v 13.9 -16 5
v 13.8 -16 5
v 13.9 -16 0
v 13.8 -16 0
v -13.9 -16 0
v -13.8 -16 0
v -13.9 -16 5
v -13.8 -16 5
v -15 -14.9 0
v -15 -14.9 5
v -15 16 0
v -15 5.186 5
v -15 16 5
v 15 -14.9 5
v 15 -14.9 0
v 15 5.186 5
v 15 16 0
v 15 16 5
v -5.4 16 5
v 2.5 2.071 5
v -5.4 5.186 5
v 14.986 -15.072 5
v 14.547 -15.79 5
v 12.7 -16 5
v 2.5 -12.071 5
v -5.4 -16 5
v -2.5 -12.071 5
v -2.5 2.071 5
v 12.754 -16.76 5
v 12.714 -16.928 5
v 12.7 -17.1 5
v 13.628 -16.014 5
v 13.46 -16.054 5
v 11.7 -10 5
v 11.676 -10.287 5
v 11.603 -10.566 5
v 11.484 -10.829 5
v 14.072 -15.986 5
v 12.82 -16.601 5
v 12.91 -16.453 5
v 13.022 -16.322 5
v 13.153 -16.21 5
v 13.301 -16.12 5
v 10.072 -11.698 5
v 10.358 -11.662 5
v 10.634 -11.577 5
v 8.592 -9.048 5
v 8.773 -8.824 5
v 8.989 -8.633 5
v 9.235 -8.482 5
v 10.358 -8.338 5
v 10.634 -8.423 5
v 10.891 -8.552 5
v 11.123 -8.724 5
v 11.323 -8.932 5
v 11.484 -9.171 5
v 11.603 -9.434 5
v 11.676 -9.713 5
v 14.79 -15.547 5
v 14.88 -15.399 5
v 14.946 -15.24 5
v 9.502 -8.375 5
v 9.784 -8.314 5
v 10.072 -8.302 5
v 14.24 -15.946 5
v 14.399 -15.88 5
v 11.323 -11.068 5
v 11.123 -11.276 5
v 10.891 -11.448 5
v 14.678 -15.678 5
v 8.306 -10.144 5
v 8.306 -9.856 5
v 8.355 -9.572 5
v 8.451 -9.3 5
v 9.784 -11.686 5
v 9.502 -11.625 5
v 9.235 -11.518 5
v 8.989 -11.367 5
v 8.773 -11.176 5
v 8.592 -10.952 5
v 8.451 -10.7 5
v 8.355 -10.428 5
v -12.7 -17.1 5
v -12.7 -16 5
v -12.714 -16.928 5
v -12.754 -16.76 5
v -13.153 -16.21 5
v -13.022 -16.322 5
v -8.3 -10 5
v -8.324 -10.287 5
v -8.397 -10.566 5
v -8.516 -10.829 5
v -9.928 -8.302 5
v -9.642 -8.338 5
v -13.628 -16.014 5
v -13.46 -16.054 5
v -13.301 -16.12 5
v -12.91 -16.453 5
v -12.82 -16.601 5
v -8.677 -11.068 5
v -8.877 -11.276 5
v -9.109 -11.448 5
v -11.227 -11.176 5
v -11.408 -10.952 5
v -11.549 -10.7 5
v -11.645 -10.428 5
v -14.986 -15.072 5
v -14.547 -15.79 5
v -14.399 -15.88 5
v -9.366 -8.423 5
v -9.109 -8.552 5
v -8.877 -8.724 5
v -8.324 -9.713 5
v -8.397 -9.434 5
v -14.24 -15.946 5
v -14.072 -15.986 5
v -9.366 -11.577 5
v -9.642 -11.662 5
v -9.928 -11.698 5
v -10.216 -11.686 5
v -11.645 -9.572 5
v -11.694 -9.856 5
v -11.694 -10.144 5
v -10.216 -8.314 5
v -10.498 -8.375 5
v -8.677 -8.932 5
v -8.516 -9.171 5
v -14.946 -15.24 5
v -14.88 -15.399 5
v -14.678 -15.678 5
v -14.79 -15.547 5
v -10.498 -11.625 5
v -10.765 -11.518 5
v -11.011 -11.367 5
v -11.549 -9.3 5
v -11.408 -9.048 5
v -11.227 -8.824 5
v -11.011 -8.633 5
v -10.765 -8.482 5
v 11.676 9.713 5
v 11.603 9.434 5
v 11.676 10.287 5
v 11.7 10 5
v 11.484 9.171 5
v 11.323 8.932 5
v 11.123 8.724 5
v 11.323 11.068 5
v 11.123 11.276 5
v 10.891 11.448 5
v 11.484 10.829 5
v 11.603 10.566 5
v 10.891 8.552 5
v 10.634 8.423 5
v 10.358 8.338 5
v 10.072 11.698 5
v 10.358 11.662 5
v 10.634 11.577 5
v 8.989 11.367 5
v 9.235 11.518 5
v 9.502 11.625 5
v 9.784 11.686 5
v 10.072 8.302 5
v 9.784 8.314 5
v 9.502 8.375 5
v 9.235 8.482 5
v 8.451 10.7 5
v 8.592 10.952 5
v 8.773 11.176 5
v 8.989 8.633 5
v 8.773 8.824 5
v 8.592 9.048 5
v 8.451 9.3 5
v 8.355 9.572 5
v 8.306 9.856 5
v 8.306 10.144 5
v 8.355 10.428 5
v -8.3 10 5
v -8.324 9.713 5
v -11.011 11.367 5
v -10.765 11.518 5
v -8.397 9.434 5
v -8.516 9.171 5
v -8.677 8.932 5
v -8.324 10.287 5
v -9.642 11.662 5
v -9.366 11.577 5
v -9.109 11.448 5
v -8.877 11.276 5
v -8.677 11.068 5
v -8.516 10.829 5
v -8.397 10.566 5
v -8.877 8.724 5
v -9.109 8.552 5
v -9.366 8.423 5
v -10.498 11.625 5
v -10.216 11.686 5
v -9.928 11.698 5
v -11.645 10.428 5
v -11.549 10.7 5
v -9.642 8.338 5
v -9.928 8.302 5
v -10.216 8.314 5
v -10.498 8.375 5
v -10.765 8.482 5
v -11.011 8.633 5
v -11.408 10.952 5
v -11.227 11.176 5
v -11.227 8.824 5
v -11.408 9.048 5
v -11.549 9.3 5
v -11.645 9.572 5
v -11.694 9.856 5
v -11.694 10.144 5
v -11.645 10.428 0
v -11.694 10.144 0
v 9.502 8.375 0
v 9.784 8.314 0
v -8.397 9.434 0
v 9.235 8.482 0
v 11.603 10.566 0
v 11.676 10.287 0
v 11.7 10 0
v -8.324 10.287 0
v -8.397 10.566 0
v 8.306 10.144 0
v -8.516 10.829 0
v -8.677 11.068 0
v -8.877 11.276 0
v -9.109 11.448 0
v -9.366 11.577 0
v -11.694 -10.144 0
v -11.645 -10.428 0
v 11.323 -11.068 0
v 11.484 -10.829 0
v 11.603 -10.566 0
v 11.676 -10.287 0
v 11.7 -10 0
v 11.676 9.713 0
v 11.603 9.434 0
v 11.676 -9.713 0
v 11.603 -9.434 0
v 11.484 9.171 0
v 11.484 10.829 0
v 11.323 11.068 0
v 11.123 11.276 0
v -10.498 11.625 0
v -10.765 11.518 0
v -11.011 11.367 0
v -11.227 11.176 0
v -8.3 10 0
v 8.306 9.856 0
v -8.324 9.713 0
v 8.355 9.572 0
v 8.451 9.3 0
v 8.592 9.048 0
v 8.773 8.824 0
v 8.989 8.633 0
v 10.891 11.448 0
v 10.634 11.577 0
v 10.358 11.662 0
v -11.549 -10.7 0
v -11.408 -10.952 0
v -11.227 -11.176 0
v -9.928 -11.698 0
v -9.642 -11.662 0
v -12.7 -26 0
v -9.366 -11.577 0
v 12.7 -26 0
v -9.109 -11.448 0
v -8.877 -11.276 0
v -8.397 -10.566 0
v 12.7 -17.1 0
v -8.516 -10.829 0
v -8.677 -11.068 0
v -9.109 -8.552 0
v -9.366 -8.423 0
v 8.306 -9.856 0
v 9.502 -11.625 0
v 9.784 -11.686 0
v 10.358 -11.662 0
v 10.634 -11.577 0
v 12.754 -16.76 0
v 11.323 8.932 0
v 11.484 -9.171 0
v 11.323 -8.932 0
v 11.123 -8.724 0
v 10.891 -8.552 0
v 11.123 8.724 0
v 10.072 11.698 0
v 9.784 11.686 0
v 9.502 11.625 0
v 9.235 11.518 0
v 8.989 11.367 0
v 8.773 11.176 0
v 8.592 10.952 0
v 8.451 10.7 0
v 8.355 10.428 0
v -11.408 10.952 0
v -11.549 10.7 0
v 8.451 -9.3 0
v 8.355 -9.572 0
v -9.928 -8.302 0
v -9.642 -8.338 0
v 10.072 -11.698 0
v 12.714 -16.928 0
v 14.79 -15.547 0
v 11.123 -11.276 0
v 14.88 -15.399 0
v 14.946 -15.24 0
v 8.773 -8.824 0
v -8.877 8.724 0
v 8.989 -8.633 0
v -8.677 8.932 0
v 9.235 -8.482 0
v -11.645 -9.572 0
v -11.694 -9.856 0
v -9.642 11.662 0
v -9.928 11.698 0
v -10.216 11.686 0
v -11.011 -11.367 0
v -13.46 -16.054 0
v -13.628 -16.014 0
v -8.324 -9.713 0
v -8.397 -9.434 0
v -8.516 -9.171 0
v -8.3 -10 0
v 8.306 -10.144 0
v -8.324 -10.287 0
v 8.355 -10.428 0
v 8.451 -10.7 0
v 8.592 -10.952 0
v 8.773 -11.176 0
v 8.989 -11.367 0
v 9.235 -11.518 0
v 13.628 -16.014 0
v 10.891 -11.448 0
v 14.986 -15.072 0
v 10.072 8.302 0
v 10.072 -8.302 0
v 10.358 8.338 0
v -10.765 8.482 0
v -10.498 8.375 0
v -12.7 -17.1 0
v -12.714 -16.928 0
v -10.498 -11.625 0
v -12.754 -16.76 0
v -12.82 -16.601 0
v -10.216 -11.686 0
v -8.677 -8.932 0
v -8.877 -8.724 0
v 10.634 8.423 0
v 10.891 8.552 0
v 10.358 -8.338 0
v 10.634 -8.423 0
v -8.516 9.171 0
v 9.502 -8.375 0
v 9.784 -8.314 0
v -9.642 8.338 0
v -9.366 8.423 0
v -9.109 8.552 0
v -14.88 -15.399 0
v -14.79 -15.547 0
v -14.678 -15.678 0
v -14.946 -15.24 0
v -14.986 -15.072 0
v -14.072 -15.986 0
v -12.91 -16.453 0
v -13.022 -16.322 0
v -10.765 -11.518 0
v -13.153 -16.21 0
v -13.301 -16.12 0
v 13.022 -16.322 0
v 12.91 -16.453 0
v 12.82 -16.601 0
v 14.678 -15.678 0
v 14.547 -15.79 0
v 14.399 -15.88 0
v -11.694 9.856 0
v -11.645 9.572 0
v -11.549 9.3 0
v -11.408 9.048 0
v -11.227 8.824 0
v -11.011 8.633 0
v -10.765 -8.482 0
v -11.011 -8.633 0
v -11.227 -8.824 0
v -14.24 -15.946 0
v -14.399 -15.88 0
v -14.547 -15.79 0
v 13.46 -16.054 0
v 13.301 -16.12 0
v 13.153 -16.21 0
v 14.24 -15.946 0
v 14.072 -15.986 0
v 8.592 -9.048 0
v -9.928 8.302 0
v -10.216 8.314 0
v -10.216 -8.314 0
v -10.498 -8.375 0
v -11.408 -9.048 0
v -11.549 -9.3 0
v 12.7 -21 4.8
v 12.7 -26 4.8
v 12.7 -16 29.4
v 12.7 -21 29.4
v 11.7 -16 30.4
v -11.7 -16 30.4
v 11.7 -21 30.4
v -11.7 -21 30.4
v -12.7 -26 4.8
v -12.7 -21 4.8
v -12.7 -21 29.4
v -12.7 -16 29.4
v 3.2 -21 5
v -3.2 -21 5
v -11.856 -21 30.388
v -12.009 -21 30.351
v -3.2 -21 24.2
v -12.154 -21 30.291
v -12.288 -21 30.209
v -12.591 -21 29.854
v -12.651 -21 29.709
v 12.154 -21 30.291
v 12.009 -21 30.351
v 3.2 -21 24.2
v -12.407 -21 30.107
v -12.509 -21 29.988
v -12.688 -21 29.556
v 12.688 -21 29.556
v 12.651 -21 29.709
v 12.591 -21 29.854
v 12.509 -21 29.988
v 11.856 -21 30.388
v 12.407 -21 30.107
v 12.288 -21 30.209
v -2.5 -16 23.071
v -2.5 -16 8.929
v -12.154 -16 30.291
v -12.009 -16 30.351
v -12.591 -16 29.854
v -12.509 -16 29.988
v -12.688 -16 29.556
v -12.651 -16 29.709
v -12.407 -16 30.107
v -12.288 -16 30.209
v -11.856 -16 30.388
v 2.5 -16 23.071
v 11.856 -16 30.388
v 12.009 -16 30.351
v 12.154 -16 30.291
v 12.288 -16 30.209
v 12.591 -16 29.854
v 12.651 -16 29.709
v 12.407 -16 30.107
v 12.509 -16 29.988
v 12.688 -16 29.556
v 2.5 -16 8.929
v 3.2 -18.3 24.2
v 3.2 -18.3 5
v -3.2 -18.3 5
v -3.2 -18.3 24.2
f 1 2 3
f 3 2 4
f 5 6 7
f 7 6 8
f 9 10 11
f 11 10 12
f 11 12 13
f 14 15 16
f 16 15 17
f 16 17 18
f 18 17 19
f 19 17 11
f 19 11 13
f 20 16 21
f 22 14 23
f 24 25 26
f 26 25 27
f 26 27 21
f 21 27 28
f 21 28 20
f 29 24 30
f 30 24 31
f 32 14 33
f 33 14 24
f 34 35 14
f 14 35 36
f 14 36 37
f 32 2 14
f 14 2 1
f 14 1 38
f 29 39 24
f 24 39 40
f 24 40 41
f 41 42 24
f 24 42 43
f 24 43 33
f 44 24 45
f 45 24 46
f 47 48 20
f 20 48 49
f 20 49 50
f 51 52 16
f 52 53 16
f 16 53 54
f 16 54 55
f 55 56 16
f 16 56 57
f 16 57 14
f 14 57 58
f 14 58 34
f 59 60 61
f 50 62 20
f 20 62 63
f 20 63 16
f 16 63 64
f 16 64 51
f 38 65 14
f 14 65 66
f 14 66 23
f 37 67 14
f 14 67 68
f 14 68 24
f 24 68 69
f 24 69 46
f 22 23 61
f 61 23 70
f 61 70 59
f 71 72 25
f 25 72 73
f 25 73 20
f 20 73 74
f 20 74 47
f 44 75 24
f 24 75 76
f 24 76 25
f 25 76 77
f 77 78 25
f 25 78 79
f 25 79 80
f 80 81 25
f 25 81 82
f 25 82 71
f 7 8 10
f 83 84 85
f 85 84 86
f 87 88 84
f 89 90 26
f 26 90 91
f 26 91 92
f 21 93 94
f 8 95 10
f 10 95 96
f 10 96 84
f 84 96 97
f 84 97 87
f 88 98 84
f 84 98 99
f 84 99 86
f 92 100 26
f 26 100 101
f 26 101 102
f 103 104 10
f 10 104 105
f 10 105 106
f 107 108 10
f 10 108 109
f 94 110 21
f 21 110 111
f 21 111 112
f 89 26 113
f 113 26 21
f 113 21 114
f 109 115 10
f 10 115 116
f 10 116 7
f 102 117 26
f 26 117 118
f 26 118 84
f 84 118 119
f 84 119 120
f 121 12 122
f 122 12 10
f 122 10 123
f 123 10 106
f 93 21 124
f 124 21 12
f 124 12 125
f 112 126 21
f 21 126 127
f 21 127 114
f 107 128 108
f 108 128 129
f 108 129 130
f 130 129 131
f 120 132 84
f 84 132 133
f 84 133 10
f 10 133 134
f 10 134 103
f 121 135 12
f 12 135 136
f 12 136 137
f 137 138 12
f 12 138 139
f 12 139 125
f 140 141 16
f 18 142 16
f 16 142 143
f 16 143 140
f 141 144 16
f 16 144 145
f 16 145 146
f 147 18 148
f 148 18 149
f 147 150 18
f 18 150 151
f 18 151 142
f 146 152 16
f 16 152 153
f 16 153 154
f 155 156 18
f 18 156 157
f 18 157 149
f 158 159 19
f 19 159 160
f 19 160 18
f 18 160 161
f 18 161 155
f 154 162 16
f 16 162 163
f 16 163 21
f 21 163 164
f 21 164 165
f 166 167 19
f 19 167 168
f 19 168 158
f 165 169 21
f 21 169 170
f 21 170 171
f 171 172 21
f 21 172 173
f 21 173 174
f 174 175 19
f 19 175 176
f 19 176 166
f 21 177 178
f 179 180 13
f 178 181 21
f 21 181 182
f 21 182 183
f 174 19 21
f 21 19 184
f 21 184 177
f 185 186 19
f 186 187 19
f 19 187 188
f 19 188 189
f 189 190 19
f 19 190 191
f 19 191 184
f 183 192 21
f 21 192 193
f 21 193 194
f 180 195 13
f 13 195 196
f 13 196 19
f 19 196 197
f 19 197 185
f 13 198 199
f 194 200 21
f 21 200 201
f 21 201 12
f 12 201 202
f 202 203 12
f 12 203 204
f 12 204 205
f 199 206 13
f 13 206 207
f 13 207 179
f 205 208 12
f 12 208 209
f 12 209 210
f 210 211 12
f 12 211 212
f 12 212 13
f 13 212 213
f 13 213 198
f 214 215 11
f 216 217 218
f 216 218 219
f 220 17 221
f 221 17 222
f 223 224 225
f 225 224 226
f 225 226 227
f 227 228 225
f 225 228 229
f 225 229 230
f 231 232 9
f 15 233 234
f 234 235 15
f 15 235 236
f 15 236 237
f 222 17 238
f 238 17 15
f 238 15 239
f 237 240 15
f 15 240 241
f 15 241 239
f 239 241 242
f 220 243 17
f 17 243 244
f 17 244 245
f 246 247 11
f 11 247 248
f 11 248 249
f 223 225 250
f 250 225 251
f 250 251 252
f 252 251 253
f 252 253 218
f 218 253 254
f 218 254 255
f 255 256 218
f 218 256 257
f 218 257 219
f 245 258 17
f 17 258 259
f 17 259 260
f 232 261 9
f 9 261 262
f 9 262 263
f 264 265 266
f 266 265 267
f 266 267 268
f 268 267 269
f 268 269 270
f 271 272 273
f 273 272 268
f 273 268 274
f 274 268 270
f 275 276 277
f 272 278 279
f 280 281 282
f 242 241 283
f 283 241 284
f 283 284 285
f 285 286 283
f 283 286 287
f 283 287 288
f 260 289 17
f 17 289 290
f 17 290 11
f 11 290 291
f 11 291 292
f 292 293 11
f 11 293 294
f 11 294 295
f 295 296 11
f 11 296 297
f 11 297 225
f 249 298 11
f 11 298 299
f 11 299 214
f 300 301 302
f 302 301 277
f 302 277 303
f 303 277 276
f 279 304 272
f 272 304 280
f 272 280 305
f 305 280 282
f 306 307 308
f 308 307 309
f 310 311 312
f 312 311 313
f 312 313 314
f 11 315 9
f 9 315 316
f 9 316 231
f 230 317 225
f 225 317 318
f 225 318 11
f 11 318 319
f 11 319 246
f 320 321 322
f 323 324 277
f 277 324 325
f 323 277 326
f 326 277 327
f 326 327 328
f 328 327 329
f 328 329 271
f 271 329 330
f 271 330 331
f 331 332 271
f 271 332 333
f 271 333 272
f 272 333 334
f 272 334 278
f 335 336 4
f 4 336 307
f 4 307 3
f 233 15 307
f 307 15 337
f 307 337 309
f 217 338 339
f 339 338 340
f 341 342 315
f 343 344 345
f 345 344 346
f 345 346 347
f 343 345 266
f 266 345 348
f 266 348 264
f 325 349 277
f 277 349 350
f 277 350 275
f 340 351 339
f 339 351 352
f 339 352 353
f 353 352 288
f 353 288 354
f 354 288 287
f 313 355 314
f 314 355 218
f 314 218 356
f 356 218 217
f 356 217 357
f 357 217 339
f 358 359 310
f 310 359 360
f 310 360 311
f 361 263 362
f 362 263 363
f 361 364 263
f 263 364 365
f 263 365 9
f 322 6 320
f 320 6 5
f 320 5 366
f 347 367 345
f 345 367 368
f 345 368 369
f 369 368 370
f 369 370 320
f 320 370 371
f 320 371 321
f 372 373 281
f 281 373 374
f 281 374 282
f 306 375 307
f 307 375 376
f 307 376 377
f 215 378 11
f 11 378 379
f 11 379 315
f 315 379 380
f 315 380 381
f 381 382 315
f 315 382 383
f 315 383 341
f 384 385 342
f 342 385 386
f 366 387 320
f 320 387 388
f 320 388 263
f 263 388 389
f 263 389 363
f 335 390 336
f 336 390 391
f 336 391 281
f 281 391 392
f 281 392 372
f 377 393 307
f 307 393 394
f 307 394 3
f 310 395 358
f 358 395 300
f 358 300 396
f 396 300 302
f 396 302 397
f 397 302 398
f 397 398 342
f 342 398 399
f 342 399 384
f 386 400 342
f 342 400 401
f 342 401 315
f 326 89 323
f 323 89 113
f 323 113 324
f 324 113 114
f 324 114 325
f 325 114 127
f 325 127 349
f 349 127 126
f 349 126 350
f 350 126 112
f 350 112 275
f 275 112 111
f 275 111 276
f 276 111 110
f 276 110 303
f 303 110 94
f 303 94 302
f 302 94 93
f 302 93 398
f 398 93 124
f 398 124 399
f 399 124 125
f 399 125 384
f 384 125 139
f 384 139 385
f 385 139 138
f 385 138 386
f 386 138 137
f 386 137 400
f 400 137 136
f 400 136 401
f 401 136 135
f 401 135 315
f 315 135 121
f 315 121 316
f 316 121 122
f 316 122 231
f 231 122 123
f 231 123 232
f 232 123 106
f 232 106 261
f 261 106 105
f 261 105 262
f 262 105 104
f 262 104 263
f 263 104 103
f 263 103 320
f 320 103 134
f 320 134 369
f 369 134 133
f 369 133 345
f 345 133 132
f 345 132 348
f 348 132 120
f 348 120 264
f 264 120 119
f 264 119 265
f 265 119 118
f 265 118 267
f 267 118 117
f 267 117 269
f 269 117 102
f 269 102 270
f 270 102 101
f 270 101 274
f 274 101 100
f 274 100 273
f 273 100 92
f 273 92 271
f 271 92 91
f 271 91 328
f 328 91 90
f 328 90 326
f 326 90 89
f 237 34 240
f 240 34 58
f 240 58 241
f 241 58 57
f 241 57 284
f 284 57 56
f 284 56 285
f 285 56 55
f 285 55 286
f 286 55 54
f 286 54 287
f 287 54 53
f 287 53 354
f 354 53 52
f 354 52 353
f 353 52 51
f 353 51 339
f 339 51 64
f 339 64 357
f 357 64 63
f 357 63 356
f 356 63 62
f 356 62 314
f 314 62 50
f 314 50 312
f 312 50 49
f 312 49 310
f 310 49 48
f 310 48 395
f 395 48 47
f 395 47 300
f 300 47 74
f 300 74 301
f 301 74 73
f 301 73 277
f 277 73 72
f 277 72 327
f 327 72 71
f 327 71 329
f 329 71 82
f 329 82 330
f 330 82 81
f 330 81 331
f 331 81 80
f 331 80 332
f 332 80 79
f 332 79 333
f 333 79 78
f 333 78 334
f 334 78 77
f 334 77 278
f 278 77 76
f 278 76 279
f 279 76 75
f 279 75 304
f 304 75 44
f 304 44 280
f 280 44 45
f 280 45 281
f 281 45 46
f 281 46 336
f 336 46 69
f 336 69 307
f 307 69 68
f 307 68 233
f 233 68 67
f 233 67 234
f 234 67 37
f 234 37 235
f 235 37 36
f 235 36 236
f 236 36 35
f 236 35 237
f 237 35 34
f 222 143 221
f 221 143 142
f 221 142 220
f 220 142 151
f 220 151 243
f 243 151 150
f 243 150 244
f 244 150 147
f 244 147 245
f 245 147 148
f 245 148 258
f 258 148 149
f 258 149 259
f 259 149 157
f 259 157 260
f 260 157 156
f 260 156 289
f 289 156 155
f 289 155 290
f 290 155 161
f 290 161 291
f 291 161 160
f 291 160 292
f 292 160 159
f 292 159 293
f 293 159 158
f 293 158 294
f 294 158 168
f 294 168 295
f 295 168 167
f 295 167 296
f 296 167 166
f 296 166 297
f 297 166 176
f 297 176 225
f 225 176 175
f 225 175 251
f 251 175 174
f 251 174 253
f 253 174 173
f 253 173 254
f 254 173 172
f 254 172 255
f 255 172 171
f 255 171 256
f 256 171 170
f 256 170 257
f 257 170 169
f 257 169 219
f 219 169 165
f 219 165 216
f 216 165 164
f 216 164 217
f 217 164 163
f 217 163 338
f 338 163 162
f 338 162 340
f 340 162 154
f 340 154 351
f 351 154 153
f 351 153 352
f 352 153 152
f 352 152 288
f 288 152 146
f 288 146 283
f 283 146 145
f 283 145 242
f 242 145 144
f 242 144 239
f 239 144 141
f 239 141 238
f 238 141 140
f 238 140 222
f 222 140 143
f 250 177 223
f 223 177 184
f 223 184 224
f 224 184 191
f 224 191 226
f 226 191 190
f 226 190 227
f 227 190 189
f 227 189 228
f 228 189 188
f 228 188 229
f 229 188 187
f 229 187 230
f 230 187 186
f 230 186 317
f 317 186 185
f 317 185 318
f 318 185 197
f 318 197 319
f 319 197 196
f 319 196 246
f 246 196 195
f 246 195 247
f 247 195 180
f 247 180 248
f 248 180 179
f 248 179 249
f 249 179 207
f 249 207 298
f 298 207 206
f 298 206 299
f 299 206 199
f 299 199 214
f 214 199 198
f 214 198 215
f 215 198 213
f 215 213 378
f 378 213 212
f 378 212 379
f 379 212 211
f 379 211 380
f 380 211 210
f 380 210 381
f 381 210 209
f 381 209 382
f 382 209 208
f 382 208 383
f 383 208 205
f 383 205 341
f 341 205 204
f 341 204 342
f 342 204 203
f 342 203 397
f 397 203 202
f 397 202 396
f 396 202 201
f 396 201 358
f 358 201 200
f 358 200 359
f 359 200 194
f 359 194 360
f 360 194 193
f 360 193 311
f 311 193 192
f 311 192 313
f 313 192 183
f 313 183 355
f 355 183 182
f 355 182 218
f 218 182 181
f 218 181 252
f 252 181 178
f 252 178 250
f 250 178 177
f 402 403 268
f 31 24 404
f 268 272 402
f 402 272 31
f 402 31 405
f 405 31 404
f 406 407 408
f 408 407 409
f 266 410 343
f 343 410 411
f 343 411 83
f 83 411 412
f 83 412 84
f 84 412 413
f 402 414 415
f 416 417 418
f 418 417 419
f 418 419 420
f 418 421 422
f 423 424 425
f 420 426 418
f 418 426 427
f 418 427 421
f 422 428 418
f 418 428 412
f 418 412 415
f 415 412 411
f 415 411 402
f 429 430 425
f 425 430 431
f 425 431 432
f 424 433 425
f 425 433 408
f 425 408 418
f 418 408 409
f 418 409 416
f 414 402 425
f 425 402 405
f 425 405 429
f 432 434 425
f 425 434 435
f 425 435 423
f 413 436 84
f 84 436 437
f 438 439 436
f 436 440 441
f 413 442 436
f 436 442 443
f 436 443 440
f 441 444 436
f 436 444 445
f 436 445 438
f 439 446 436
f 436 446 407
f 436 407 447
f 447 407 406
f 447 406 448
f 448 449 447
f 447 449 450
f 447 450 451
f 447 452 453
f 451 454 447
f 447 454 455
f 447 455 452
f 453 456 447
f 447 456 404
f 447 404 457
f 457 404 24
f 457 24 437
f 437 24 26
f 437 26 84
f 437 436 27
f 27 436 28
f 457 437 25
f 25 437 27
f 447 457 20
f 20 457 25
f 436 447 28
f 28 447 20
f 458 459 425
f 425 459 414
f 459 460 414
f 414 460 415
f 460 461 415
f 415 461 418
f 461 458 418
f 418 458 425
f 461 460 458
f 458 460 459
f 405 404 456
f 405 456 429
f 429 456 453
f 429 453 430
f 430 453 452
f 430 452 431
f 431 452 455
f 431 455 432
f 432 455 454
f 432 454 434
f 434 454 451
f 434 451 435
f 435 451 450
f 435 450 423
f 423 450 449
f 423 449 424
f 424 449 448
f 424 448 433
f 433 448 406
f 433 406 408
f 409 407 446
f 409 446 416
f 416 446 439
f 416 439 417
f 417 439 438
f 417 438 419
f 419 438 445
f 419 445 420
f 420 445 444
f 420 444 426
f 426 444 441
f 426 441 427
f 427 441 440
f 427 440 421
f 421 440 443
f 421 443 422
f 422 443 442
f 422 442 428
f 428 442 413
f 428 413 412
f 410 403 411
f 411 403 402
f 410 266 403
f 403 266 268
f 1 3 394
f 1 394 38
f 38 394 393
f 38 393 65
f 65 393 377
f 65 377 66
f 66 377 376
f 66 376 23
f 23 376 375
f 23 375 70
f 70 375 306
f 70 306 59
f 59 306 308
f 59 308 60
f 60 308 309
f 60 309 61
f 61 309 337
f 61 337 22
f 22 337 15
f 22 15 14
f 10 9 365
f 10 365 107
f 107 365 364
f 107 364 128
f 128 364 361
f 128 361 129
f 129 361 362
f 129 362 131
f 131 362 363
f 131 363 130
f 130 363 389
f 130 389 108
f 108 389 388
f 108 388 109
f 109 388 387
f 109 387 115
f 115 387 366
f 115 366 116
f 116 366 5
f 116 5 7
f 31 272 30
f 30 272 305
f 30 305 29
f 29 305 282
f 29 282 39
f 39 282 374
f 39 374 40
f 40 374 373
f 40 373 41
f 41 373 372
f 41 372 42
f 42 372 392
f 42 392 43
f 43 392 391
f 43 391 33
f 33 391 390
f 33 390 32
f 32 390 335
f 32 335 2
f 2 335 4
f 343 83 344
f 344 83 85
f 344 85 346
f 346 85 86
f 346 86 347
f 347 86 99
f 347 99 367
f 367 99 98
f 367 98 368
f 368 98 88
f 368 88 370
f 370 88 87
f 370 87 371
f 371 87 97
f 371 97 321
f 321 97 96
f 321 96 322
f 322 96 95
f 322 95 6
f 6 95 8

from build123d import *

# Parameters (mm, degrees)
SKETCH1_W                       = 30
SKETCH1_H                       = 32
BOSS_EXTRUDE1_DEPTH             = 5
M3_CLEARANCE_HOLE1_D            = 3.4
SKETCH5_W                       = 25.4
SKETCH5_H                       = 30.4
BOSS_EXTRUDE2_DEPTH             = 5
BOSS_EXTRUDE3_REACH             = 38.377
SKETCH8_W                       = 5
SKETCH8_H                       = 10
BOSS_EXTRUDE3_DIRECTION_2_REACH = 38.377
SKETCH10_W                      = 6.4
SKETCH10_H                      = 19.2
CUT_EXTRUDE1_DEPTH              = 2.7
FILLET1_R                       = 1
SKETCH12_W                      = 25.4
SKETCH12_H                      = 4.8
BOSS_EXTRUDE5_DEPTH             = 5
FILLET2_START                   = -1
FILLET2_DEPTH                   = 30.4
FILLET2_2_DEPTH                 = 5


with BuildPart() as part:
    # Sketch1 → Boss-Extrude1 (new body)
    with BuildSketch(Plane.XY):
        Rectangle(SKETCH1_W, SKETCH1_H)
    extrude(amount=BOSS_EXTRUDE1_DEPTH)

    # M3 Clearance Hole1 (through all)
    with Locations(Plane.XY.offset(5)):
        with Locations((-10, 10), (10, 10), (10, -10), (-10, -10)):
            Hole(M3_CLEARANCE_HOLE1_D / 2)

    # Sketch5 → Boss-Extrude2 (add)
    with BuildSketch(Plane.XZ.offset(16)):
        with Locations((0, 15.2)):
            Rectangle(SKETCH5_W, SKETCH5_H)
    extrude(amount=BOSS_EXTRUDE2_DEPTH)

    # Boss-Extrude3: up to this plane
    boss_extrude3_end = Plane(origin=(0, -16, 0), z_dir=(0, -1, 0))
    # Sketch8 → Boss-Extrude3 (add, up to the surface)
    with BuildSketch(Plane(origin=(0, -10.5, 10.5), x_dir=(1, 0, 0), z_dir=(0, -0.7071067811865475, 0.7071067811865477)), mode=Mode.PRIVATE) as boss_extrude3_sk1:
        Rectangle(SKETCH8_W, SKETCH8_H)
    boss_extrude3_tool1 = split(extrude(boss_extrude3_sk1.sketch, amount=BOSS_EXTRUDE3_REACH, mode=Mode.PRIVATE), bisect_by=boss_extrude3_end, keep=Keep.BOTH, mode=Mode.PRIVATE)
    add(boss_extrude3_tool1.solids().sort_by_distance((0, -10.5, 10.5))[0])

    # Boss-Extrude3 direction 2: up to this plane
    boss_extrude3_direction_2_end = Plane(origin=(0, 0, 5), z_dir=(0, 0, 1))
    # Sketch8 → Boss-Extrude3 direction 2 (add, up to the surface)
    with BuildSketch(Plane(origin=(0, -10.5, 10.5), x_dir=(1, 0, 0), z_dir=(0, -0.7071067811865475, 0.7071067811865477)), mode=Mode.PRIVATE) as boss_extrude3_direction_2_sk1:
        Rectangle(SKETCH8_W, SKETCH8_H)
    boss_extrude3_direction_2_tool1 = split(extrude(boss_extrude3_direction_2_sk1.sketch, amount=-BOSS_EXTRUDE3_DIRECTION_2_REACH, mode=Mode.PRIVATE), bisect_by=boss_extrude3_direction_2_end, keep=Keep.BOTH, mode=Mode.PRIVATE)
    add(boss_extrude3_direction_2_tool1.solids().sort_by_distance((0, -10.5, 10.5))[0])

    # Sketch10 → Cut-Extrude1 (cut)
    with BuildSketch(Plane.XZ.offset(21)):
        with Locations((0, 14.6)):
            Rectangle(SKETCH10_W, SKETCH10_H)
    extrude(amount=-CUT_EXTRUDE1_DEPTH, mode=Mode.SUBTRACT)

    # Fillet1
    fillet1_edges = [part.edges().sort_by_distance(p)[0] for p in [
        (12.7, -18.5, 30.4),
        (-12.7, -18.5, 30.4),
    ]]
    fillet(fillet1_edges, radius=FILLET1_R)

    # Sketch12 → Boss-Extrude5 (add)
    with BuildSketch(Plane.XZ.offset(21)):
        with Locations((0, 2.4)):
            Rectangle(SKETCH12_W, SKETCH12_H)
    extrude(amount=BOSS_EXTRUDE5_DEPTH)

    # Fillet2: read off the stored shape, not the designer's step
    # Fillet2 outline → Fillet2 (cut)
    with BuildSketch(Plane.XY.offset(FILLET2_START)):
        with BuildLine():
            Line((15, -16), (15, -14.9))
            ThreePointArc((15, -14.9), (14.677817459, -15.677817459), (13.9, -16))
            Line((13.9, -16), (15, -16))
        make_face()
        with BuildLine():
            Line((-15, -16), (-13.9, -16))
            ThreePointArc((-13.9, -16), (-14.677817459, -15.677817459), (-15, -14.9))
            Line((-15, -14.9), (-15, -16))
        make_face()
    extrude(amount=FILLET2_DEPTH, mode=Mode.SUBTRACT)

    # Fillet2 2 outline → Fillet2 2 (add)
    with BuildSketch(Plane.XY):
        with BuildLine():
            ThreePointArc((12.7, -17.1), (13.022182541, -16.322182541), (13.8, -16))
            Line((13.8, -16), (12.7, -16))
            Line((12.7, -16), (12.7, -17.1))
        make_face()
        with BuildLine():
            Line((-12.7, -16), (-13.8, -16))
            ThreePointArc((-13.8, -16), (-13.022182541, -16.322182541), (-12.7, -17.1))
            Line((-12.7, -17.1), (-12.7, -16))
        make_face()
    extrude(amount=FILLET2_2_DEPTH)


solid = part.part
